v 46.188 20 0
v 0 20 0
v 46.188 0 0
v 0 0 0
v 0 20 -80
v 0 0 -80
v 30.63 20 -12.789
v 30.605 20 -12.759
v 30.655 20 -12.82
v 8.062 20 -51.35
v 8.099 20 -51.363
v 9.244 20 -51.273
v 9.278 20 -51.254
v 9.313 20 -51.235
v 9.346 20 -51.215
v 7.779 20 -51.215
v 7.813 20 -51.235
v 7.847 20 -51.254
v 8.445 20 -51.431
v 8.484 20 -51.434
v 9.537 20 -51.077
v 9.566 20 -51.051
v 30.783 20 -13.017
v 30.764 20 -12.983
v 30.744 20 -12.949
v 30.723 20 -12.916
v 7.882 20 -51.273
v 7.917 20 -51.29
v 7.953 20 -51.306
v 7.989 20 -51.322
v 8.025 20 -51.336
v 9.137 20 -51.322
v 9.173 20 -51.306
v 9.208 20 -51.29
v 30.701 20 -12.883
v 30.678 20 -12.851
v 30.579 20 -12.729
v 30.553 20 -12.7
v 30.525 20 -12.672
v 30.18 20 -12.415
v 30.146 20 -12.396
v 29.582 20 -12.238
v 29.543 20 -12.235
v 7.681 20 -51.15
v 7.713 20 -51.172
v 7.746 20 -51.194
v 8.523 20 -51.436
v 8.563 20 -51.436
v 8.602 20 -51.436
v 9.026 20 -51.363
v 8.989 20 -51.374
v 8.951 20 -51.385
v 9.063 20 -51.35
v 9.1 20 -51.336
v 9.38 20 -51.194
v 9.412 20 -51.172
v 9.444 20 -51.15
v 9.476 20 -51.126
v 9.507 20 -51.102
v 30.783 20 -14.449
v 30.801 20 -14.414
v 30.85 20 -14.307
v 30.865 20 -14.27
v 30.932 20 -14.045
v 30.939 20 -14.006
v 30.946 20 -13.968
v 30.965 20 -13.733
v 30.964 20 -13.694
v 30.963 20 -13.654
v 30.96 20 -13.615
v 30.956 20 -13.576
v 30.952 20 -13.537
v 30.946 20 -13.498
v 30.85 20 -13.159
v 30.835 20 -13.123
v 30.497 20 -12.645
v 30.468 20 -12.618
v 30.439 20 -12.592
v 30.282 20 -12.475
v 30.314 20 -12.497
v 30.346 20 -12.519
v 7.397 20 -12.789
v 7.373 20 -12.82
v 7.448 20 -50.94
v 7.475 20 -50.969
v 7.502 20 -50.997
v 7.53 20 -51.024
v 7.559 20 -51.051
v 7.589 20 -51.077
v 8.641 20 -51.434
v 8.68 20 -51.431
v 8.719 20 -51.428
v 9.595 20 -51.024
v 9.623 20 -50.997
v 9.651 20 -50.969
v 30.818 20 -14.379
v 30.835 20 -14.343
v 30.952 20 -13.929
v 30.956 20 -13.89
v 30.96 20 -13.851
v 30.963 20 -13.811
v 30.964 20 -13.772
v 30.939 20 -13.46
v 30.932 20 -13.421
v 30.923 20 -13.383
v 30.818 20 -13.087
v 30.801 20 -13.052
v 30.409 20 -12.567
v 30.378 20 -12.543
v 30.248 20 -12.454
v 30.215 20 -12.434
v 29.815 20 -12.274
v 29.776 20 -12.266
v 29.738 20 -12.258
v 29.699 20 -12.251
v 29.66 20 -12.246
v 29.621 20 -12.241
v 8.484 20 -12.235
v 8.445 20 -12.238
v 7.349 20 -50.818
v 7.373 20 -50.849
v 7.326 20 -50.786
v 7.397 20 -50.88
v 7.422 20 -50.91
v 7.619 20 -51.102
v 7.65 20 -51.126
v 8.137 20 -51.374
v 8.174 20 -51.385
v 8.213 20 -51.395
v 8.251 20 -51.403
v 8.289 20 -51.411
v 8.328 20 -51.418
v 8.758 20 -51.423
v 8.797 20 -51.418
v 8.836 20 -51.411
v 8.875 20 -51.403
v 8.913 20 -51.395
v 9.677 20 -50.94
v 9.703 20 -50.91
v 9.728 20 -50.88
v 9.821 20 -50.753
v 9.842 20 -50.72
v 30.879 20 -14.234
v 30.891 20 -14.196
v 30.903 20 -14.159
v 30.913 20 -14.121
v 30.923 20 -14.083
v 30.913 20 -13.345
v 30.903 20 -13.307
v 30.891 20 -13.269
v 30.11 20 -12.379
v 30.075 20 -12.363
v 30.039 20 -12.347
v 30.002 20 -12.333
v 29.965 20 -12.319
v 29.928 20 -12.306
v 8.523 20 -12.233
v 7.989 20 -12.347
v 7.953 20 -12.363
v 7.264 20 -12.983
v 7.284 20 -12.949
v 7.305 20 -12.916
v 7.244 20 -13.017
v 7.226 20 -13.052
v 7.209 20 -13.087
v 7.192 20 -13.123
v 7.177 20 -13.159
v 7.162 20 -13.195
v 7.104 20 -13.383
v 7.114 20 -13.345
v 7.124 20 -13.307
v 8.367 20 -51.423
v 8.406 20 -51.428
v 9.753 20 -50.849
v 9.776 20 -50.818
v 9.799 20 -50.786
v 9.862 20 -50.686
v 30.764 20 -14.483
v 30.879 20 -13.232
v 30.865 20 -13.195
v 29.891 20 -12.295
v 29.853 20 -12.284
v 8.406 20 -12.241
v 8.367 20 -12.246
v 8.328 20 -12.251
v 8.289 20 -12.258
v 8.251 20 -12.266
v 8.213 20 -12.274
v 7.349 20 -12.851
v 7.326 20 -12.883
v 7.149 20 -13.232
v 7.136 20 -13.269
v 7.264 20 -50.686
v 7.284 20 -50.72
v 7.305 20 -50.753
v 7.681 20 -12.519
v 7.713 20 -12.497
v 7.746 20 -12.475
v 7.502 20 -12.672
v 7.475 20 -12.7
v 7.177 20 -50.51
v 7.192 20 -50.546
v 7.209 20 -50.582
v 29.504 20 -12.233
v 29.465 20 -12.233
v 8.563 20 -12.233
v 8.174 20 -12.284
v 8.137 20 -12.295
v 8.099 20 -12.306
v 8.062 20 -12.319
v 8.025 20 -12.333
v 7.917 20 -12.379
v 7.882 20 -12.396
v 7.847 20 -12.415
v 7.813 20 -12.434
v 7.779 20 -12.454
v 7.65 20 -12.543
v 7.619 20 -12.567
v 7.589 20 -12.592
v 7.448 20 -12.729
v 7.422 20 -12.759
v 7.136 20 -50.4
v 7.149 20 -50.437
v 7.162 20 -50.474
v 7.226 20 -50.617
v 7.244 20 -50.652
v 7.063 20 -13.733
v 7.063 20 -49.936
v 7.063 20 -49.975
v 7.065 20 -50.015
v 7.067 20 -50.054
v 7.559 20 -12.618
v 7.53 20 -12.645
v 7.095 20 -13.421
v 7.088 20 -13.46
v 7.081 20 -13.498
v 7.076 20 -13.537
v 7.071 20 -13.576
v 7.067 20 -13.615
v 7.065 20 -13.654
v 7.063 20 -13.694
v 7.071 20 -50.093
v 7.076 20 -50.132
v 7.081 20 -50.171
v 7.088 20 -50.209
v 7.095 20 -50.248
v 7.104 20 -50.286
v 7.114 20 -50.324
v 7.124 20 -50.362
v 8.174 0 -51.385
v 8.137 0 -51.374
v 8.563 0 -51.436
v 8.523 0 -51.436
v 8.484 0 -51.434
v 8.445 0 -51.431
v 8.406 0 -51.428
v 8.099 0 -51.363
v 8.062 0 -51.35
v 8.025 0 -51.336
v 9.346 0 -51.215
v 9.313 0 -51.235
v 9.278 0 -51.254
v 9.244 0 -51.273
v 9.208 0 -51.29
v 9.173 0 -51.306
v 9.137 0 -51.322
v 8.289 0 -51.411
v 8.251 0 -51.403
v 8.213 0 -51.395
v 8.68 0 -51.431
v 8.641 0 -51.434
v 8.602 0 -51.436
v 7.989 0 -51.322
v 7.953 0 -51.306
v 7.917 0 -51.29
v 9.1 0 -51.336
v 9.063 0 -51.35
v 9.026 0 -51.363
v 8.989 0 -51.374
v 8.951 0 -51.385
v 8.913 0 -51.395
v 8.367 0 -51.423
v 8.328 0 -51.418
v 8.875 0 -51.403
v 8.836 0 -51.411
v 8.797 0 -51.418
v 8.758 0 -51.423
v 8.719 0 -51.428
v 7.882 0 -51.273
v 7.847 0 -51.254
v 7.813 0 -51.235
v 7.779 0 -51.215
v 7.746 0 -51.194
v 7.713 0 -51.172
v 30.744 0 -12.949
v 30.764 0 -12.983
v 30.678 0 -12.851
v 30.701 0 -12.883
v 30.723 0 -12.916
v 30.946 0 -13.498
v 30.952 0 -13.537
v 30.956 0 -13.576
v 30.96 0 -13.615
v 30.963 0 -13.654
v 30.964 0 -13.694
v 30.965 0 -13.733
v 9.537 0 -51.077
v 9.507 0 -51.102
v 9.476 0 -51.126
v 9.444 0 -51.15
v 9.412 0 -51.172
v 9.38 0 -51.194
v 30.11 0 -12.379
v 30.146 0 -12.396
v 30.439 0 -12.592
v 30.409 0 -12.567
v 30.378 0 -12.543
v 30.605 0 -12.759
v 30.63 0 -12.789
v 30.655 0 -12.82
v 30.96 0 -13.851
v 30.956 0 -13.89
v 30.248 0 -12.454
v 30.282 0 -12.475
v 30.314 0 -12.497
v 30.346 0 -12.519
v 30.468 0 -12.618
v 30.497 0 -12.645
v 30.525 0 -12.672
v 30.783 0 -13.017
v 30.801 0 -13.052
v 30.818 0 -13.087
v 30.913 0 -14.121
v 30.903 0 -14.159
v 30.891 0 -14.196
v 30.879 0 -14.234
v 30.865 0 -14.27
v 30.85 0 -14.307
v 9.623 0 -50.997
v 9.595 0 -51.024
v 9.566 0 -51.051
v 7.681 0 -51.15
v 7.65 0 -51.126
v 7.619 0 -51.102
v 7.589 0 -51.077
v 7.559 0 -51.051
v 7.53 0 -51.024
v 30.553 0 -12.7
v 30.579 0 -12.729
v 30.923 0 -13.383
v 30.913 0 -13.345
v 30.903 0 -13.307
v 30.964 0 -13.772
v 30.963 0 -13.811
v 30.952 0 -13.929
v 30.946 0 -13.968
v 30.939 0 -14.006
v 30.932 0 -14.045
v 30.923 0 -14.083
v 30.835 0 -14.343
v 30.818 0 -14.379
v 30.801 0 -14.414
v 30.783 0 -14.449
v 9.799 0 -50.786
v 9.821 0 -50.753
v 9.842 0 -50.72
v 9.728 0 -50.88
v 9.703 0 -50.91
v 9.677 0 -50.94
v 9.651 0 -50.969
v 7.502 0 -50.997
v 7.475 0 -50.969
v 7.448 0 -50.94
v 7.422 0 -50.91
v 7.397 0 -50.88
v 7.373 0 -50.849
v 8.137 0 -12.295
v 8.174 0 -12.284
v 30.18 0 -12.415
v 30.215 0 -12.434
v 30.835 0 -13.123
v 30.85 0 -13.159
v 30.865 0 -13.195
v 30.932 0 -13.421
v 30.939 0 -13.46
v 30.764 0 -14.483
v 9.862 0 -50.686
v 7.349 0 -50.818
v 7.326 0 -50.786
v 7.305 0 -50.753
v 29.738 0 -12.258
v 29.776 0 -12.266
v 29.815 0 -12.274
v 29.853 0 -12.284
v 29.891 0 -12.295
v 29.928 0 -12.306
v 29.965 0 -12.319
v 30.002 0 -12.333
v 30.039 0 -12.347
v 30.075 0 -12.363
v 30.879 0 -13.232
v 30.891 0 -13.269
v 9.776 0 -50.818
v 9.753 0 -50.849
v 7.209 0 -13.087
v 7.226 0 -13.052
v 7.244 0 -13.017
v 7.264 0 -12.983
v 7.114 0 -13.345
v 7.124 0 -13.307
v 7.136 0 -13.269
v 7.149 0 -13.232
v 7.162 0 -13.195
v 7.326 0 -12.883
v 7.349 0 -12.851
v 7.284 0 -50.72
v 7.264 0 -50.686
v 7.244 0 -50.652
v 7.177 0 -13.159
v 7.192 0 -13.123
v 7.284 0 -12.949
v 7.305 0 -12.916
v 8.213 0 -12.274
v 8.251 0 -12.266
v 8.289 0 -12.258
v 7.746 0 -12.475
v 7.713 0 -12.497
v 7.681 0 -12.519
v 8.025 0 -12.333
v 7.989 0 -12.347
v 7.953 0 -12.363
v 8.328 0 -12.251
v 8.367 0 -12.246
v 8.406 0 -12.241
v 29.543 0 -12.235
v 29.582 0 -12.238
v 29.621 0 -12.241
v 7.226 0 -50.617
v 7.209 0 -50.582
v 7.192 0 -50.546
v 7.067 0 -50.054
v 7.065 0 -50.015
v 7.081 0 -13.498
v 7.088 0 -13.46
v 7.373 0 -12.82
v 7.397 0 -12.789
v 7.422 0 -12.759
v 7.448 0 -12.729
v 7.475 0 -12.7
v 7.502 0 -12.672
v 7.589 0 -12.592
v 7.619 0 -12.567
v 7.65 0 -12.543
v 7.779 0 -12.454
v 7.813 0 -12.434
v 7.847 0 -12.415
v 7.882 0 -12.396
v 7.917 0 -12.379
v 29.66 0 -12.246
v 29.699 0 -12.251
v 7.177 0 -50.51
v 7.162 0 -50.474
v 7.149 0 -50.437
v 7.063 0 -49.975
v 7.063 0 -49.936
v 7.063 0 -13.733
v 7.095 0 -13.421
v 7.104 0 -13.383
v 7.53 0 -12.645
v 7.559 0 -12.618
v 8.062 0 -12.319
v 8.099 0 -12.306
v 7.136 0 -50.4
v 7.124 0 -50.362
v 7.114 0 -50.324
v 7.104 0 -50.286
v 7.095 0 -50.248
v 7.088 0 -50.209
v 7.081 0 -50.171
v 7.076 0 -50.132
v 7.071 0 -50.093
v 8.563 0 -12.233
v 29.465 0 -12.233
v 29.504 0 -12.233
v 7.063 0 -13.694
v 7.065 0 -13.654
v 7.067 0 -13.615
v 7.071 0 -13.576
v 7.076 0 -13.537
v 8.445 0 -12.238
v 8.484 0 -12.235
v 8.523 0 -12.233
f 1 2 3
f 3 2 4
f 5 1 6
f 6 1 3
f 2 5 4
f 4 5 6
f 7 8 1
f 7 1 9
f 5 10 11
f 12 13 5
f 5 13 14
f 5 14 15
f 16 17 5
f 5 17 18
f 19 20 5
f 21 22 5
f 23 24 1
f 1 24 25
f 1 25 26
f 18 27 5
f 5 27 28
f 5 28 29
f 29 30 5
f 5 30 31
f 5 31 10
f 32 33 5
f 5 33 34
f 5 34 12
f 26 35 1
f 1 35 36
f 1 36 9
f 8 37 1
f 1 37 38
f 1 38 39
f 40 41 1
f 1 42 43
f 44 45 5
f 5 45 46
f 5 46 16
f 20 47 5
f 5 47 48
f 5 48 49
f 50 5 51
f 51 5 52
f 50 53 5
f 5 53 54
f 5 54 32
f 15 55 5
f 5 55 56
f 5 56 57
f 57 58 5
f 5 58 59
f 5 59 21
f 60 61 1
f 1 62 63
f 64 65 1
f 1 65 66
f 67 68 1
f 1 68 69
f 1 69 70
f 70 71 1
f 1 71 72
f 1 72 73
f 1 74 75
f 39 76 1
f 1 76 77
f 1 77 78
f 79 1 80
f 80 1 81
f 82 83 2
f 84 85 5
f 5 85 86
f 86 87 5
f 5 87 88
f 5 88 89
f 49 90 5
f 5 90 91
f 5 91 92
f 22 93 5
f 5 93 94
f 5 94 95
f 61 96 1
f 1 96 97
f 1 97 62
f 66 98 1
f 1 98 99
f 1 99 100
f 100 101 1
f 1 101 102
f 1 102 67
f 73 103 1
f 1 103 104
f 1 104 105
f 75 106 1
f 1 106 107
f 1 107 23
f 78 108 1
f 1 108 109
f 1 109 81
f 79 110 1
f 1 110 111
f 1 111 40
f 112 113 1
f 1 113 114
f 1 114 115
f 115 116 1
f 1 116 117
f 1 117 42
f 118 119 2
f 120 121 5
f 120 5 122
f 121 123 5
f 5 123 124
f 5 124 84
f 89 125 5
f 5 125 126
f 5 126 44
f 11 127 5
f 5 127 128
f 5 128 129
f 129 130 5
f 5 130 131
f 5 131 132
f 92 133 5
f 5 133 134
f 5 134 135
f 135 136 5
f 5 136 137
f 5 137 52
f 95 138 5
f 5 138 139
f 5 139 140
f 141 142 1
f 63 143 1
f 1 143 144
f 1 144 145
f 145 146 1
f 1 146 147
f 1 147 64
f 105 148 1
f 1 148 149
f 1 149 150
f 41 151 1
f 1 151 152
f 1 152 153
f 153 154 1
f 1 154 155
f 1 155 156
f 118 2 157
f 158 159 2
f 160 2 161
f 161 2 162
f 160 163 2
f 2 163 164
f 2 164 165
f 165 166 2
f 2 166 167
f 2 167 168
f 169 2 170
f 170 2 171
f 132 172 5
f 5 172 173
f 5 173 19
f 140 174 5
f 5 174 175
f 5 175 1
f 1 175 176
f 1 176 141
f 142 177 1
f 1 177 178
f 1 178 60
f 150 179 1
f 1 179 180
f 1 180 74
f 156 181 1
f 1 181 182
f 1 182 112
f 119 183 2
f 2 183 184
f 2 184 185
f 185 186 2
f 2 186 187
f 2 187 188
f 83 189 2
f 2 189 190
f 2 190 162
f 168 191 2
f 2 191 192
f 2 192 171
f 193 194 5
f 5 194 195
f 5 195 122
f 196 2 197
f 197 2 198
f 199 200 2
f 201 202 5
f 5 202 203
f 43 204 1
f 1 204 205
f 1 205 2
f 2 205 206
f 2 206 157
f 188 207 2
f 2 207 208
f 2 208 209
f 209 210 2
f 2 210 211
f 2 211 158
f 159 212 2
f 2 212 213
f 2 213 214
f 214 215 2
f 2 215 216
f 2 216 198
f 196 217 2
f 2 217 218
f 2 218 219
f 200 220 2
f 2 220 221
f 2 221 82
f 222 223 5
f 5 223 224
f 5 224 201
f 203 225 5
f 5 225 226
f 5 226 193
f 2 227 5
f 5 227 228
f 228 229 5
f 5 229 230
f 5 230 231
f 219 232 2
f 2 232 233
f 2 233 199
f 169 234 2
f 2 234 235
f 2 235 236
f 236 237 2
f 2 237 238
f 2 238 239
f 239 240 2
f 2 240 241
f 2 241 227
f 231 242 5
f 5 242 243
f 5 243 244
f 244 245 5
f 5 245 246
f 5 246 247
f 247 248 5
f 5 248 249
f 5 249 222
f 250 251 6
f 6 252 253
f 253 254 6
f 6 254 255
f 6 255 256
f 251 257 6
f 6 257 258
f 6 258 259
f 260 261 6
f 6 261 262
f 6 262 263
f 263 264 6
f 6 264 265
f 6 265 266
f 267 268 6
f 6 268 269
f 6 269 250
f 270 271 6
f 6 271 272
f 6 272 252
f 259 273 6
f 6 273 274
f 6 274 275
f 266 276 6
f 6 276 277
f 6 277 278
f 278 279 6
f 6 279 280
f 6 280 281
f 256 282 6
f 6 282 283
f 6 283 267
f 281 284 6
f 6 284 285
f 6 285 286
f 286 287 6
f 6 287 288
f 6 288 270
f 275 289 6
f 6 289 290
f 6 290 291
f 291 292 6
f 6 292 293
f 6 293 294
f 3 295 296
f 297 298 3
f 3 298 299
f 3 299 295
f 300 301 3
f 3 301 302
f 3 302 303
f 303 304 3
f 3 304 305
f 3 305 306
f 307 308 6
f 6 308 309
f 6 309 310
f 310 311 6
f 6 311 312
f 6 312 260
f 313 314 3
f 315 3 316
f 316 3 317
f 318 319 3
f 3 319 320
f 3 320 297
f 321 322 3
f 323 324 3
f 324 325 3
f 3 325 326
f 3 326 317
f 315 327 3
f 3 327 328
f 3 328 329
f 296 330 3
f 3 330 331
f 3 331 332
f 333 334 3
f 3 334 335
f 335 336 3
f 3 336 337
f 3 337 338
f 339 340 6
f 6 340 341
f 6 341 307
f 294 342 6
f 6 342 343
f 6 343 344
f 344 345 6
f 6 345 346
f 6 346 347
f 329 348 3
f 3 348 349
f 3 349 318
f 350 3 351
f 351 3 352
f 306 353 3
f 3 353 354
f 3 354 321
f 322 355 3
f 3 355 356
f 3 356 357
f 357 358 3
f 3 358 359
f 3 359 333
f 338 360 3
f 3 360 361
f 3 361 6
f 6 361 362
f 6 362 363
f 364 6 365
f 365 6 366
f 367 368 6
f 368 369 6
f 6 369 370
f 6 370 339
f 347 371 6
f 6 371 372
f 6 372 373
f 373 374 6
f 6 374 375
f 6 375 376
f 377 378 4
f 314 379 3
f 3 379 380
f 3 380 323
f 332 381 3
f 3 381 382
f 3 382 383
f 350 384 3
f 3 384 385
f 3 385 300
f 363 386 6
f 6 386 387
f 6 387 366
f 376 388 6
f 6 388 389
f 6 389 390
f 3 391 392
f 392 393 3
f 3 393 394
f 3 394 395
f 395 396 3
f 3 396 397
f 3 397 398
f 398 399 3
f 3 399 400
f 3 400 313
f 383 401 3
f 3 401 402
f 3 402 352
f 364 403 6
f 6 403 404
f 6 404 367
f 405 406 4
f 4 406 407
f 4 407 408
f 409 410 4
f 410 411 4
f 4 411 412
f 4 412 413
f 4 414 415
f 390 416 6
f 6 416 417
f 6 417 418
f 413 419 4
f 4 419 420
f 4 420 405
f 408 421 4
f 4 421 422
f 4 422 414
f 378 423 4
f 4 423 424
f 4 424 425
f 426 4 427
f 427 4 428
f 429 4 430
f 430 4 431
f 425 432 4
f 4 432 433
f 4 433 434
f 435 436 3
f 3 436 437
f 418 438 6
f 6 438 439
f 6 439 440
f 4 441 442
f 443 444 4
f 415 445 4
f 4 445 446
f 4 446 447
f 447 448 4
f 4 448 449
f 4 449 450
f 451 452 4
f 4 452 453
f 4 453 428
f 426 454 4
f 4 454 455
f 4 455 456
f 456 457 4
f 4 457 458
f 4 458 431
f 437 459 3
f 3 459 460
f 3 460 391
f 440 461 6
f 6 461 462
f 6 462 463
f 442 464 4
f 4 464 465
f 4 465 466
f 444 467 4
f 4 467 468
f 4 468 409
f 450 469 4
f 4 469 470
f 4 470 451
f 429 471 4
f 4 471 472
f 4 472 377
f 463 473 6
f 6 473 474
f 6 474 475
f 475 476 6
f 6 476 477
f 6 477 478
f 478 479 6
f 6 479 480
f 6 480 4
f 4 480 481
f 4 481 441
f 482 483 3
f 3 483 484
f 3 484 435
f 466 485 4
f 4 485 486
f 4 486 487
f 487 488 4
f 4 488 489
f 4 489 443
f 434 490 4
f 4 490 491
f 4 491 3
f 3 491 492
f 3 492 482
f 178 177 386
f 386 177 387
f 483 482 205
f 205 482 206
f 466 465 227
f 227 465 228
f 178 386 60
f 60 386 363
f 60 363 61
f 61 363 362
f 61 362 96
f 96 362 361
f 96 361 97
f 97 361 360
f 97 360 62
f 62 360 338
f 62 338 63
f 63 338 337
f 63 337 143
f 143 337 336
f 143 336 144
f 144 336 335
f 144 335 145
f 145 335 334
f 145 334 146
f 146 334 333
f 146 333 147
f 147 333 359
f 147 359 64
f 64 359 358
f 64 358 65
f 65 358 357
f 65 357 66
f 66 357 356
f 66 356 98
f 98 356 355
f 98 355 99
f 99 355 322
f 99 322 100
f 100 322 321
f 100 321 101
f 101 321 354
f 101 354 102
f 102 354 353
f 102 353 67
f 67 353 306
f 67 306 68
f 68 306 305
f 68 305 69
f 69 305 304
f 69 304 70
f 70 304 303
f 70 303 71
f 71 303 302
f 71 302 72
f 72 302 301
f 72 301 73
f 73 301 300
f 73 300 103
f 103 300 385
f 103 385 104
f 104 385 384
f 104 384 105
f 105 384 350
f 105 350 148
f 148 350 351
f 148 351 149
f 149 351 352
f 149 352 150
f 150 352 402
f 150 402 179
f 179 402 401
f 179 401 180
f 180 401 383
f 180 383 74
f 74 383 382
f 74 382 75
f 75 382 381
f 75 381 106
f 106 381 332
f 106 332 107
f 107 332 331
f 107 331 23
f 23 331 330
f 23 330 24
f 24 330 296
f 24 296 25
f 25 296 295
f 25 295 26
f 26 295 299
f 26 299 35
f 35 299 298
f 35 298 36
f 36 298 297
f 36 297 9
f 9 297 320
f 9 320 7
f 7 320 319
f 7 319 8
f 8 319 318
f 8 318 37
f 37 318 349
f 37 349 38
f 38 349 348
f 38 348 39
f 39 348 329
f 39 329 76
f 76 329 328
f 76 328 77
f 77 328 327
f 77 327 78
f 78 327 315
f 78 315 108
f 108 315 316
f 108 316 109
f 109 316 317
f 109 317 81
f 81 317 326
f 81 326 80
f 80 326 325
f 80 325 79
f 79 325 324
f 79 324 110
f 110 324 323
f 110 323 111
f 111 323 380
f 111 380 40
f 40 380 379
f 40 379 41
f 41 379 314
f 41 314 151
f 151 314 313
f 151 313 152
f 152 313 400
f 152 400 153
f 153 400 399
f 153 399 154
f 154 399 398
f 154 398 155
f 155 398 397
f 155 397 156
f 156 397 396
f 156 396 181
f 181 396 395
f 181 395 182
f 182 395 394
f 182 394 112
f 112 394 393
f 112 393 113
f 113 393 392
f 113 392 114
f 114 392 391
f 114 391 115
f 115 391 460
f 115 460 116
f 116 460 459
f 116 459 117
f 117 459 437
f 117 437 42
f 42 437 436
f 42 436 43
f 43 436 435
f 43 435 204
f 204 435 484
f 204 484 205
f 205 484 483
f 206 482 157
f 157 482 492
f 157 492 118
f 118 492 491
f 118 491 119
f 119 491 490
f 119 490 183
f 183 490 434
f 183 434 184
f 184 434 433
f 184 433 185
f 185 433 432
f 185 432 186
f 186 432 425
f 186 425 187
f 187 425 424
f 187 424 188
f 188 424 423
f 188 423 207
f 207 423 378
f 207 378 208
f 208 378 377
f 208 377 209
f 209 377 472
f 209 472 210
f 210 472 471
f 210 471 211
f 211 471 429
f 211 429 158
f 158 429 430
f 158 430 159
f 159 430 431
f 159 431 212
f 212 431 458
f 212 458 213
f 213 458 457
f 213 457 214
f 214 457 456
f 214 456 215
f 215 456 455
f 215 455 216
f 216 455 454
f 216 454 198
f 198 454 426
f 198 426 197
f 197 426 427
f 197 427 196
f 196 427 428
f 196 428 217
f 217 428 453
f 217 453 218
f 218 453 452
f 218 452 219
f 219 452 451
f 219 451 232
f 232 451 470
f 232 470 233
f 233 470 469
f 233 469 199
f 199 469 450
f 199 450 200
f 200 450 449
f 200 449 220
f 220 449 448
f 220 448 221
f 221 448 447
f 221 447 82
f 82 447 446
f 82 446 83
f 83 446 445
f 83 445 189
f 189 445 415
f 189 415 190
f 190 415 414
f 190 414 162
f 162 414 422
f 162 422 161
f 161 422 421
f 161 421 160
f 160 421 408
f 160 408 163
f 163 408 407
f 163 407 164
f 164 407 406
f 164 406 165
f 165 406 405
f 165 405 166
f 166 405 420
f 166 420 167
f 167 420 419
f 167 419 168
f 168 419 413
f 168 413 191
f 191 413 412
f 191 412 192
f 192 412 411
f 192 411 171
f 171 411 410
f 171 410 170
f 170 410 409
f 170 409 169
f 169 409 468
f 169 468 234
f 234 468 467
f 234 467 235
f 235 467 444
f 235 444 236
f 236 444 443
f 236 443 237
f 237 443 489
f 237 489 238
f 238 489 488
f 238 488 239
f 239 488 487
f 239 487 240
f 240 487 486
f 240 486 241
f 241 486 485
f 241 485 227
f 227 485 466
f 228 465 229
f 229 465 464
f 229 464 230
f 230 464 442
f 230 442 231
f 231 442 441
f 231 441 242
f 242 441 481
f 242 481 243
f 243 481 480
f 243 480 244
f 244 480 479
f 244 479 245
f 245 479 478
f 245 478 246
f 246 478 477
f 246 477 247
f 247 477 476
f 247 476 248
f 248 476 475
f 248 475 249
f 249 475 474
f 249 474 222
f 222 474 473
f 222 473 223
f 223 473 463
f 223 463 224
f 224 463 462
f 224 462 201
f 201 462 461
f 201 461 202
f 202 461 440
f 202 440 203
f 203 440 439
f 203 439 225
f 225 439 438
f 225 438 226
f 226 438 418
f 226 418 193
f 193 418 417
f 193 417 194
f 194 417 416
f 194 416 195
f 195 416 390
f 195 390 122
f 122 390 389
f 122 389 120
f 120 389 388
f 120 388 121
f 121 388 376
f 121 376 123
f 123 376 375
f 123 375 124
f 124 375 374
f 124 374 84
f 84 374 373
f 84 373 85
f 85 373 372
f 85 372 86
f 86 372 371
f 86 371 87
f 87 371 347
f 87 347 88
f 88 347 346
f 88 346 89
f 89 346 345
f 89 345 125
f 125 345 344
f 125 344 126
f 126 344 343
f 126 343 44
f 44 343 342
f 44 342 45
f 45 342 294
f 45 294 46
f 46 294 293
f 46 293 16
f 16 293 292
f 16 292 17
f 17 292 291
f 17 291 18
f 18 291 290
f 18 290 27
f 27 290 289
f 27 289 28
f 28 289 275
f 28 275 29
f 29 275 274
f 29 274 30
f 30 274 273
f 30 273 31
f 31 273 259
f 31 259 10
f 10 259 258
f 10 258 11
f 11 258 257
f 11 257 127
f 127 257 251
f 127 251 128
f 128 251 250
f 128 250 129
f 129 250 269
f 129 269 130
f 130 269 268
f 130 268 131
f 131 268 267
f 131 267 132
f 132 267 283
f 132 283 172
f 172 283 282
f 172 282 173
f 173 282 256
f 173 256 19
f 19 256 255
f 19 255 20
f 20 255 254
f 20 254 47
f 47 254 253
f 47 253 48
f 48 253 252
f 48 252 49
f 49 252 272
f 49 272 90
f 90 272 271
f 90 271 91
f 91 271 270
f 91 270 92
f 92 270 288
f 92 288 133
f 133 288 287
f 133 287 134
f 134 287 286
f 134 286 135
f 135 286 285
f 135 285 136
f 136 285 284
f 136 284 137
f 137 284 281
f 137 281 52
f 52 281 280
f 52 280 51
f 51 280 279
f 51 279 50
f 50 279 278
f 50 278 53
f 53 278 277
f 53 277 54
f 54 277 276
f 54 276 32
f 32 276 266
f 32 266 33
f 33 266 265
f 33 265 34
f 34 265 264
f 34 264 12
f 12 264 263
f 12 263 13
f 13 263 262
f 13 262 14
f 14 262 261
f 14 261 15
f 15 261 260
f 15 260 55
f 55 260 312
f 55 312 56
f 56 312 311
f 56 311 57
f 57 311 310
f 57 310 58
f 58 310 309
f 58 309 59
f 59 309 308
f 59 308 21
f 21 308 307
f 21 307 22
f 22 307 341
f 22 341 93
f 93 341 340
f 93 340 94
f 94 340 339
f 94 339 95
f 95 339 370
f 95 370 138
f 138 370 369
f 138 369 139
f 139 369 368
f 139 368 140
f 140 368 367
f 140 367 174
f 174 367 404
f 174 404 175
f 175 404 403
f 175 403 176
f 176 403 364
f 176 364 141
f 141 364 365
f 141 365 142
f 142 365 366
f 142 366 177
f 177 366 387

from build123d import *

# Parameters (mm, degrees)
BOSS_EXTRUDE1_DEPTH = 20
CUT_EXTRUDE1_DEPTH  = 21
FILLET1_R           = 1.5


with BuildPart() as part:
    # Sketch1 → Boss-Extrude1 (new body)
    with BuildSketch(Plane(origin=(0, 0, 0), x_dir=(1, 0, 0), z_dir=(0, 1, 0))):
        Polygon((0, 0), (0, 80), (46.188021535, 0), align=None)
    extrude(amount=BOSS_EXTRUDE1_DEPTH)

    # Sketch2 → Cut-Extrude1 (cut, through all)
    with BuildSketch(Plane(origin=(0, 20, 0), x_dir=(1, 0, 0), z_dir=(0, 1, 0))):
        Polygon((7.062673845, 55.534180126), (7.062673845, 12.232909937), (32.062673845, 12.232909937), align=None)
    extrude(amount=-CUT_EXTRUDE1_DEPTH, mode=Mode.SUBTRACT)

    # Fillet1
    fillet1_edges = [part.edges().sort_by_distance(p)[0] for p in [
        (7.062673845, 10, -55.534180126),
        (32.062673845, 10, -12.232909937),
        (7.062673845, 10, -12.232909937),
    ]]
    fillet(fillet1_edges, radius=FILLET1_R)


solid = part.part
